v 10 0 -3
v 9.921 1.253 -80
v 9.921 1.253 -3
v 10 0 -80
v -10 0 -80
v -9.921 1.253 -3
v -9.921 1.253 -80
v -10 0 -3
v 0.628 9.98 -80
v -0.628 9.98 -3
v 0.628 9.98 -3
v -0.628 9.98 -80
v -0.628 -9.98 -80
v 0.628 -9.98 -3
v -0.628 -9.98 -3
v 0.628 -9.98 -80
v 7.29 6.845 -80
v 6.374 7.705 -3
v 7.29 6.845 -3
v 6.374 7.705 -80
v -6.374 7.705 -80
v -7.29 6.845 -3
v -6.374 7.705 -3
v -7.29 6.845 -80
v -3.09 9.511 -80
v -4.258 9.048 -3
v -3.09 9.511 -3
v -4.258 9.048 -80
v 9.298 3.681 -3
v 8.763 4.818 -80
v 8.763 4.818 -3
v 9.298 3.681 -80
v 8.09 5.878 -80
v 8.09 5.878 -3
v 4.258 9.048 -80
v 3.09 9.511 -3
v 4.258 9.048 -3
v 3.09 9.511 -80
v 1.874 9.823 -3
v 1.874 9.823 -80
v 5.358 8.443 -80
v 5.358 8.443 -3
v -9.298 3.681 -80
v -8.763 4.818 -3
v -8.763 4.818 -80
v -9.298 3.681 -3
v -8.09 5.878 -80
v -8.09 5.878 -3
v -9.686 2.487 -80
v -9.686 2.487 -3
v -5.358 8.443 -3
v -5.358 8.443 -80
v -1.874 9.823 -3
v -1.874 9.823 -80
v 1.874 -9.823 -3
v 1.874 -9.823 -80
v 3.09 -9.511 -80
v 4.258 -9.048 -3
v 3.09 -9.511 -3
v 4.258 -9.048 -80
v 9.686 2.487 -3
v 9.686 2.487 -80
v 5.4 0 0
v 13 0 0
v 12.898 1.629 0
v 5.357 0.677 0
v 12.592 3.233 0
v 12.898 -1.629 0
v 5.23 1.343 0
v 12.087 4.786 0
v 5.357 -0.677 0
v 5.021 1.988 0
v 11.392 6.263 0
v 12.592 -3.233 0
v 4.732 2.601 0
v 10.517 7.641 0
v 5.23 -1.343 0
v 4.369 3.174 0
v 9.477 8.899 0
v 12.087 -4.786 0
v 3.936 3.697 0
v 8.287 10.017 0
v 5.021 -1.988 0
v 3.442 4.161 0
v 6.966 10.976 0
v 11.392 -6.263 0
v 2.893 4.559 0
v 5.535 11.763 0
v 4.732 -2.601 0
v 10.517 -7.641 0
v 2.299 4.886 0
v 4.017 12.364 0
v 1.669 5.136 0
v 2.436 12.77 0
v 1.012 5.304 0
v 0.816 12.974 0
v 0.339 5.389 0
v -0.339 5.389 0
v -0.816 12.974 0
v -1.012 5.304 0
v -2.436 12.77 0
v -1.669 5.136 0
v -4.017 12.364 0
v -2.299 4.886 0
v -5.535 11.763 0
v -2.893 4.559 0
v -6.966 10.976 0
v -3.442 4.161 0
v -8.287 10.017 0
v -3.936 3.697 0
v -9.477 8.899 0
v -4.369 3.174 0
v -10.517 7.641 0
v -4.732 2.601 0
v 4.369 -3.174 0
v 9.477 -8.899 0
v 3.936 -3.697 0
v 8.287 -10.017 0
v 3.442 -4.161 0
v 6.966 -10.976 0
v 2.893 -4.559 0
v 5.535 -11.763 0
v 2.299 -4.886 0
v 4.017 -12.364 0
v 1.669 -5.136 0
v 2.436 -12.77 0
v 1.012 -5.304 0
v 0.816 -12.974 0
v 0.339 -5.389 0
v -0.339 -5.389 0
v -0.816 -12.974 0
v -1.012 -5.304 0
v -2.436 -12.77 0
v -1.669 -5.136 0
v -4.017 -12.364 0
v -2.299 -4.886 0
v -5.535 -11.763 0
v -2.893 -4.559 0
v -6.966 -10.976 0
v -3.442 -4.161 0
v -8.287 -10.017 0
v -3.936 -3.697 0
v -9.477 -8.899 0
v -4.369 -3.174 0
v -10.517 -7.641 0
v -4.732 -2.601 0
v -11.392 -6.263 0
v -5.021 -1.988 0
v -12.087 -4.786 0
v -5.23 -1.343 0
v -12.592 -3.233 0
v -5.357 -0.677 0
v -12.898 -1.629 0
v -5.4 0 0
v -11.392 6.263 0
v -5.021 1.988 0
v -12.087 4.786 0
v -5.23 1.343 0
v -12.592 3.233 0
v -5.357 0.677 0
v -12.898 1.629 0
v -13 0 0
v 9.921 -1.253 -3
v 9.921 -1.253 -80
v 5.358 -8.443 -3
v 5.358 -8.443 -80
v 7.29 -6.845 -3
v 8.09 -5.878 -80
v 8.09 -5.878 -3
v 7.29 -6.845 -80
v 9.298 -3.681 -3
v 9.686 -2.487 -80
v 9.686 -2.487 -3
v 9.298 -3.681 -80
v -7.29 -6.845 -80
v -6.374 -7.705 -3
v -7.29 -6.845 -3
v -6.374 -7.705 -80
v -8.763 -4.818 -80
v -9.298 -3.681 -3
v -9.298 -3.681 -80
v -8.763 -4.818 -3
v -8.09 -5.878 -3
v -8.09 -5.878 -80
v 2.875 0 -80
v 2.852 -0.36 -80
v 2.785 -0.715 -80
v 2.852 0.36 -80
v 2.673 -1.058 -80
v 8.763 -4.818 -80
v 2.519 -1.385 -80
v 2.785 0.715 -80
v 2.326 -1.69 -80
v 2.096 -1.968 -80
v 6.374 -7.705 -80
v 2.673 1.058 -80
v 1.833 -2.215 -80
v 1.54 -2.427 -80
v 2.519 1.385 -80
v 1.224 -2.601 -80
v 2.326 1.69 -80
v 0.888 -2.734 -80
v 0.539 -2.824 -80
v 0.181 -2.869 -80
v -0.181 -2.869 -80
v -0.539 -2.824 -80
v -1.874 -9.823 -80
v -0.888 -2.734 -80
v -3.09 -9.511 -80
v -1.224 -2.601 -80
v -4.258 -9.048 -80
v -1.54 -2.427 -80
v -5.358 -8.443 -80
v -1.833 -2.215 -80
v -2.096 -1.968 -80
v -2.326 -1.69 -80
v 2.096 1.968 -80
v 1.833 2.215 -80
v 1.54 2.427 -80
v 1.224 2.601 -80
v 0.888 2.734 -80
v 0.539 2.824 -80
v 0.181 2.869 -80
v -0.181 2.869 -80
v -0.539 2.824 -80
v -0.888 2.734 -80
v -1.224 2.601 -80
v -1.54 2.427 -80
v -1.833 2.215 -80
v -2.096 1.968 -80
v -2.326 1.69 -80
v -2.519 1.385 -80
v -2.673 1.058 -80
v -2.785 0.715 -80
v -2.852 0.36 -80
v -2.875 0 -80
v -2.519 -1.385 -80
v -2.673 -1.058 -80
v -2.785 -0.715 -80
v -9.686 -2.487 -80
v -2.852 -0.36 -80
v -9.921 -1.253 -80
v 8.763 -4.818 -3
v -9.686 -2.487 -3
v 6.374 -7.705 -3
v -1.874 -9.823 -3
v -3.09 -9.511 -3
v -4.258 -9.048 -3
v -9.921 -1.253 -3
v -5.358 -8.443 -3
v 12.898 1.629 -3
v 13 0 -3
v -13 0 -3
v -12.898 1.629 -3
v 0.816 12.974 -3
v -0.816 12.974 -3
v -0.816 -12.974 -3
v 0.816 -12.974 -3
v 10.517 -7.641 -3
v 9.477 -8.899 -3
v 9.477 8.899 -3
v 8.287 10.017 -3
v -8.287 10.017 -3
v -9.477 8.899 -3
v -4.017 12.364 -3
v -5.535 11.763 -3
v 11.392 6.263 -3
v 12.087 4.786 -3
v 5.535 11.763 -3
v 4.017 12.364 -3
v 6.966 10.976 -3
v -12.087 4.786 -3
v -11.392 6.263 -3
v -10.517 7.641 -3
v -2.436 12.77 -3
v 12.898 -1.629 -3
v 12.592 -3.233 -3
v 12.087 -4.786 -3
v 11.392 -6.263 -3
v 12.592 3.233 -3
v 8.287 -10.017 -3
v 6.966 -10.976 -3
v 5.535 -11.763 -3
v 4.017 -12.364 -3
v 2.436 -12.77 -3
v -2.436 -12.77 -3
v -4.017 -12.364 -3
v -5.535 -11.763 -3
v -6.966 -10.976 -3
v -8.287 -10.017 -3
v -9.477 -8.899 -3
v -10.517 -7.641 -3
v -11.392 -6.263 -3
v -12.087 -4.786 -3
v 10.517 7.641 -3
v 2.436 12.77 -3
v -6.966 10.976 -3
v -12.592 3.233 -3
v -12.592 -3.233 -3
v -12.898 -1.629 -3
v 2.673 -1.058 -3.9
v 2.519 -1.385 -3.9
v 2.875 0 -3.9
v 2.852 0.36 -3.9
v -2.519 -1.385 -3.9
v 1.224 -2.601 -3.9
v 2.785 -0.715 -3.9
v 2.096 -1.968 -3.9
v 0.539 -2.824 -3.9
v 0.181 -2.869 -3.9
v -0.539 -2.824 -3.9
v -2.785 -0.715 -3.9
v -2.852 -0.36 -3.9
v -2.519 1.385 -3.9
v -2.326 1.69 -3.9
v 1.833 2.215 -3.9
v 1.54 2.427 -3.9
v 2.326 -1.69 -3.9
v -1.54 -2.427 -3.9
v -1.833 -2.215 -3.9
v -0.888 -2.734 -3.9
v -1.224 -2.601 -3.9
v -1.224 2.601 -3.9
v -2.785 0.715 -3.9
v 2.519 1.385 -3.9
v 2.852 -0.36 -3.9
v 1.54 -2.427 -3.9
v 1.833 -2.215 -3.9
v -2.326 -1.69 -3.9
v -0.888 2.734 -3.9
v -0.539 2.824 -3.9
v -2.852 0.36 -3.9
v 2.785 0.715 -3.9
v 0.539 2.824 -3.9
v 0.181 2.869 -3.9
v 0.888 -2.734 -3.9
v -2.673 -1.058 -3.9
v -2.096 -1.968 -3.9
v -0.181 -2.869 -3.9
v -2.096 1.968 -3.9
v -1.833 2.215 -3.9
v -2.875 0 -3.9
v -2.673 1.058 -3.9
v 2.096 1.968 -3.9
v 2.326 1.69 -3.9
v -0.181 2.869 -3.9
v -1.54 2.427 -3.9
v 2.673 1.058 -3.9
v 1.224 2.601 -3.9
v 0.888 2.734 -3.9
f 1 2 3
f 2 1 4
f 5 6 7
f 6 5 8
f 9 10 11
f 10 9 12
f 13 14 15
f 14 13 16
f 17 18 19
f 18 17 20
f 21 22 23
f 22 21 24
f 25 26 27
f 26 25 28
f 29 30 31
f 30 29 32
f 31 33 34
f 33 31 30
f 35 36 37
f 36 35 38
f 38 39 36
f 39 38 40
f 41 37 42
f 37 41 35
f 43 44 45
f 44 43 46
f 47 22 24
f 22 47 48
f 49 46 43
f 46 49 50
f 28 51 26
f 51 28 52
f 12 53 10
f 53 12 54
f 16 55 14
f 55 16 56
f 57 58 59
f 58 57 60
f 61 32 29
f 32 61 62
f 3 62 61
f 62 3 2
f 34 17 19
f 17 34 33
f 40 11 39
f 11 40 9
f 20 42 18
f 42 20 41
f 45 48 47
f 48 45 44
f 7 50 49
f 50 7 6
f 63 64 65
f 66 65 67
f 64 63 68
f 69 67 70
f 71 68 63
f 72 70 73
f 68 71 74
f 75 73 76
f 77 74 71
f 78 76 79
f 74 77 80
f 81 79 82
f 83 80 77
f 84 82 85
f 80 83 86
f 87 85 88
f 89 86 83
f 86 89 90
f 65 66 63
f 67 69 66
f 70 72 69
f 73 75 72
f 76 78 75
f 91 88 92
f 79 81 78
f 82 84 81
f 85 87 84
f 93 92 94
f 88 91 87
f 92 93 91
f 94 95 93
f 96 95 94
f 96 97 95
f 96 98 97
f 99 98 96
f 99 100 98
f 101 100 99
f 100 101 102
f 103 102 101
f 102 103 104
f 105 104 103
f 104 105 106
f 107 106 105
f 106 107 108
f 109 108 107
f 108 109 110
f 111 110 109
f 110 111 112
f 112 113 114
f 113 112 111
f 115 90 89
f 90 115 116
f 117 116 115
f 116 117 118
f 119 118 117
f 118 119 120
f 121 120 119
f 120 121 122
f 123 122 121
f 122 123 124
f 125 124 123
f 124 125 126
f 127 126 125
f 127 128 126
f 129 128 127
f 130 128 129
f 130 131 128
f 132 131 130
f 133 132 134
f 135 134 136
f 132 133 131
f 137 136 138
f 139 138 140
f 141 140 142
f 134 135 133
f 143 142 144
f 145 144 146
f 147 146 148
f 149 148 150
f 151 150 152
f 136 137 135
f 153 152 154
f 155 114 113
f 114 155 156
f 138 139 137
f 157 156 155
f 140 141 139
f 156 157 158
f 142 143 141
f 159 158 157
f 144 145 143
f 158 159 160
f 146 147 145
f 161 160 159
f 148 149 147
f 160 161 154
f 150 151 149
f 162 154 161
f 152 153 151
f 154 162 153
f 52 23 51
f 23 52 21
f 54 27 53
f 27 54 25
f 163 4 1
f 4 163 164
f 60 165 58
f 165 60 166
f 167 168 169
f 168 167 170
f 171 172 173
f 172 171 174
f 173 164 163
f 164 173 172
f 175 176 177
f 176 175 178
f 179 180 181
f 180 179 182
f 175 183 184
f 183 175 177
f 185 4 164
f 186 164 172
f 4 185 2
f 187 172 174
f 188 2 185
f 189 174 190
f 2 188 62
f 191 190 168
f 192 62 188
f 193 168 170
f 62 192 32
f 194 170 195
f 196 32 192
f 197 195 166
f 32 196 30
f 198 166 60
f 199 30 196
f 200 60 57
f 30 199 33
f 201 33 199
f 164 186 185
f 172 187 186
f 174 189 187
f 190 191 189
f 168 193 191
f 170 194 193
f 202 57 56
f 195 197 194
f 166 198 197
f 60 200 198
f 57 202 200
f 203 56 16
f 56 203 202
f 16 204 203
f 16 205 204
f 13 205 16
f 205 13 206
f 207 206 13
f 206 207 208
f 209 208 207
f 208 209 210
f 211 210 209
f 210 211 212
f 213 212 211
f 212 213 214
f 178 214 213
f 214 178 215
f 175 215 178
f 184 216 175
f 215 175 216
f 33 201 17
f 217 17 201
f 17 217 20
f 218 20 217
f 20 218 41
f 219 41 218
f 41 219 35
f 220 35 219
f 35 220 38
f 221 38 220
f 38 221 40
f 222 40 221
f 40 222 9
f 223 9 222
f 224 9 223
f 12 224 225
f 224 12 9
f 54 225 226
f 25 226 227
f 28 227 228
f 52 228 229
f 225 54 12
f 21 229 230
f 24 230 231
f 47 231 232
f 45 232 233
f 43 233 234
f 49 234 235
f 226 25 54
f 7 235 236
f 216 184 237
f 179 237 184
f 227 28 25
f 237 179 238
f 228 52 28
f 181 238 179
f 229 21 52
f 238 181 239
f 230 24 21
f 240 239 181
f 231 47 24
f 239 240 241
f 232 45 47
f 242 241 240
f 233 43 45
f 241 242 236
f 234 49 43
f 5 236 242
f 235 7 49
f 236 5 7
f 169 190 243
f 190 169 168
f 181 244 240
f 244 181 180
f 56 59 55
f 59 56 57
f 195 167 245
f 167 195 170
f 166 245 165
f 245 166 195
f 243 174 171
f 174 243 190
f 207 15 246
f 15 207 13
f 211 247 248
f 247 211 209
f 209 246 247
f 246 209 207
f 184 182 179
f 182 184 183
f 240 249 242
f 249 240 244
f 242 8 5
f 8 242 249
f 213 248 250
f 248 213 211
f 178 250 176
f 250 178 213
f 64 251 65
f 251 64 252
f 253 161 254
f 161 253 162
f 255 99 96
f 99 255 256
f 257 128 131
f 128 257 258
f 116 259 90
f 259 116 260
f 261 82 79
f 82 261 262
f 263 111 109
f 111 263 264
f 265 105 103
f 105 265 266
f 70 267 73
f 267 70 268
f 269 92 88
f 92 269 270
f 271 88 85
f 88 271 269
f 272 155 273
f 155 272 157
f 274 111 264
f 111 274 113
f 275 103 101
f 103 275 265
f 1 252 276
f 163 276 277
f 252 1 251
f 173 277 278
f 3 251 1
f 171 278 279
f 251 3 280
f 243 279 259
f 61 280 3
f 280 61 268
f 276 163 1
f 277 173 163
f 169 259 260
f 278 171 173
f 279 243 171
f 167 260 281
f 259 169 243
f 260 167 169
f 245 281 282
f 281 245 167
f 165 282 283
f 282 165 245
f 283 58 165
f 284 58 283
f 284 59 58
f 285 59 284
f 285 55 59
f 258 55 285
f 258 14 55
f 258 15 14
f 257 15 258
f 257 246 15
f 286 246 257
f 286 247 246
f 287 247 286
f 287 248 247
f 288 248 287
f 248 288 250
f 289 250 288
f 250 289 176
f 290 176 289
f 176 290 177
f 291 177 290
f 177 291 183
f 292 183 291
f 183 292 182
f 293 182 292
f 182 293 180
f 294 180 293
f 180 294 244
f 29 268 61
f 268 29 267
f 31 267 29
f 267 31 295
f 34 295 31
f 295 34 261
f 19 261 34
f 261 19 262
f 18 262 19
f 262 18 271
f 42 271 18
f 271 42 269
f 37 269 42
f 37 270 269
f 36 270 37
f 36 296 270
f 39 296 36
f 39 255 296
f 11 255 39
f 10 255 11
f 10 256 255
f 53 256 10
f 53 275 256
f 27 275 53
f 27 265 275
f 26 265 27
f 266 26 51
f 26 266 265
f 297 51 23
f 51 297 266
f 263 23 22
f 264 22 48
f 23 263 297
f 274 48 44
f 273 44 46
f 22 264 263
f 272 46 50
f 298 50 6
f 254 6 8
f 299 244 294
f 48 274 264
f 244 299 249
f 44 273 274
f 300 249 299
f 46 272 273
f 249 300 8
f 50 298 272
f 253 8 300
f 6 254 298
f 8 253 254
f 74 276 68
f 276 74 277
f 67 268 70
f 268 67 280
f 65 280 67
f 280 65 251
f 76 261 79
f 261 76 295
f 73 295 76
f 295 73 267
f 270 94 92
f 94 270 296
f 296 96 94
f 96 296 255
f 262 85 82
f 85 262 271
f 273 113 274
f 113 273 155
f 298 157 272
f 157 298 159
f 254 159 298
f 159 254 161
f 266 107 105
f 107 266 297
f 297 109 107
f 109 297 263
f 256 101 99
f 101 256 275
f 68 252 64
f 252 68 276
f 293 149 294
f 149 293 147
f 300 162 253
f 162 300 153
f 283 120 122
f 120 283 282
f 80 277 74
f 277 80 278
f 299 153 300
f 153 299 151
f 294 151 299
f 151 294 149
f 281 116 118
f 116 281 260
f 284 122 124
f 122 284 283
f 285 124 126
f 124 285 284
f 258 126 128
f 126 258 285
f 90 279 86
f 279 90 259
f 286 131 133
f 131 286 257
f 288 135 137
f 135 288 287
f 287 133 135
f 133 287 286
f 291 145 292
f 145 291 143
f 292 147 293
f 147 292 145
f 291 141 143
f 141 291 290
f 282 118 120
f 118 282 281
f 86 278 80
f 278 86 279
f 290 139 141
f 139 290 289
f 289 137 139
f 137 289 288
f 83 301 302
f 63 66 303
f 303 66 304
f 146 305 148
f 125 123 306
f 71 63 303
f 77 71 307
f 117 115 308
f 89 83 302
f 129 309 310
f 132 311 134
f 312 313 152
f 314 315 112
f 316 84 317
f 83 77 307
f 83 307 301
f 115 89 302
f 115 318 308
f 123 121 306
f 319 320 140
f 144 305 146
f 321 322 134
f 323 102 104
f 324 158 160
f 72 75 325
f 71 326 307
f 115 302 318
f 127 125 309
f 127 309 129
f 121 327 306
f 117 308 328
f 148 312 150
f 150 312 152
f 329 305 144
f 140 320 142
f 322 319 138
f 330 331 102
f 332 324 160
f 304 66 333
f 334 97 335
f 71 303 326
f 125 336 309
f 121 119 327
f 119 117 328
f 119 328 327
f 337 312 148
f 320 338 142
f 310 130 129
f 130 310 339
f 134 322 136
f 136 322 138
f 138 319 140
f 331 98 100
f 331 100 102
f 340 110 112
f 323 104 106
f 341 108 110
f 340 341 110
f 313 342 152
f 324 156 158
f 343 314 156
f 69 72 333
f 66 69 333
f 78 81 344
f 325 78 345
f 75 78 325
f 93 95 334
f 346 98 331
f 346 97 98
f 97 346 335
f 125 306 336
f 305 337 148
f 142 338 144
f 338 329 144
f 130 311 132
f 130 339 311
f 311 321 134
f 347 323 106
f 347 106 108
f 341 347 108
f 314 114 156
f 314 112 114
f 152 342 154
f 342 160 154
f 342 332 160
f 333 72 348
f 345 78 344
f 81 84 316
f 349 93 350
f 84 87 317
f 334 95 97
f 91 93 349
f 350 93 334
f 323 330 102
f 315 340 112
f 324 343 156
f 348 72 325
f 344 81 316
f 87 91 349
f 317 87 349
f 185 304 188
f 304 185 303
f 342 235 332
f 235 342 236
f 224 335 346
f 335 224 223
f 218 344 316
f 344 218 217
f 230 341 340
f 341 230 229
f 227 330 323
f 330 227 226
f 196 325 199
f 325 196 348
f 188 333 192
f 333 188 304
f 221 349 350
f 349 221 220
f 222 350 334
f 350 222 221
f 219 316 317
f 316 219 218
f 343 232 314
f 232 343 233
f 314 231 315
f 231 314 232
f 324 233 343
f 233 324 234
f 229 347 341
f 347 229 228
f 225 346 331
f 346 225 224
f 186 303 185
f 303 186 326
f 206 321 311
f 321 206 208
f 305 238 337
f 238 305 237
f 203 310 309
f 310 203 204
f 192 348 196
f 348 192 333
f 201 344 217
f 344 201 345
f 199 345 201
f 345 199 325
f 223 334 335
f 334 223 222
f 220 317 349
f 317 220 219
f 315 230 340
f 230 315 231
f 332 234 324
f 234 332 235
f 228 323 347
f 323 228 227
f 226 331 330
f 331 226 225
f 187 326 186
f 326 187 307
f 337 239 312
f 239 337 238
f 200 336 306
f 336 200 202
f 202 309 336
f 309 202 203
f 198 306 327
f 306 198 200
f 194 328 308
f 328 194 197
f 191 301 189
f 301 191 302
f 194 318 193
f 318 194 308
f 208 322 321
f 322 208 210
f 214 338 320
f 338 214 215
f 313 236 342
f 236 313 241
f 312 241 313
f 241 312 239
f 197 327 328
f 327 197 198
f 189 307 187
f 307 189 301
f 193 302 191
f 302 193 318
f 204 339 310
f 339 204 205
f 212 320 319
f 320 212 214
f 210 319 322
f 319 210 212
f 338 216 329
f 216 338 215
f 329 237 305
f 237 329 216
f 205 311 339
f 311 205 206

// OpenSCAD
$fn = 50;


difference() {
	union() {
		translate(v = [0, 0, -80.0000000000]) {
			cylinder(h = 80, r = 10.0000000000);
		}
		translate(v = [0, 0, -3.0000000000]) {
			cylinder(h = 3, r = 13.0000000000);
		}
	}
	union() {
		translate(v = [0, 0, 0]) {
			rotate(a = [0, 0, 0]) {
				difference() {
					union() {
						#translate(v = [0, 0, -80.0000000000]) {
							cylinder(h = 80, r = 2.6000000000);
						}
						#translate(v = [0, 0, -3.9000000000]) {
							cylinder(h = 3.9000000000, r1 = 2.8750000000, r2 = 5.4000000000);
						}
						#translate(v = [0, 0, -80.0000000000]) {
							cylinder(h = 80, r = 2.8750000000);
						}
						#translate(v = [0, 0, -80.0000000000]) {
							cylinder(h = 80, r = 2.6000000000);
						}
					}
					union();
				}
			}
		}
	}
}
